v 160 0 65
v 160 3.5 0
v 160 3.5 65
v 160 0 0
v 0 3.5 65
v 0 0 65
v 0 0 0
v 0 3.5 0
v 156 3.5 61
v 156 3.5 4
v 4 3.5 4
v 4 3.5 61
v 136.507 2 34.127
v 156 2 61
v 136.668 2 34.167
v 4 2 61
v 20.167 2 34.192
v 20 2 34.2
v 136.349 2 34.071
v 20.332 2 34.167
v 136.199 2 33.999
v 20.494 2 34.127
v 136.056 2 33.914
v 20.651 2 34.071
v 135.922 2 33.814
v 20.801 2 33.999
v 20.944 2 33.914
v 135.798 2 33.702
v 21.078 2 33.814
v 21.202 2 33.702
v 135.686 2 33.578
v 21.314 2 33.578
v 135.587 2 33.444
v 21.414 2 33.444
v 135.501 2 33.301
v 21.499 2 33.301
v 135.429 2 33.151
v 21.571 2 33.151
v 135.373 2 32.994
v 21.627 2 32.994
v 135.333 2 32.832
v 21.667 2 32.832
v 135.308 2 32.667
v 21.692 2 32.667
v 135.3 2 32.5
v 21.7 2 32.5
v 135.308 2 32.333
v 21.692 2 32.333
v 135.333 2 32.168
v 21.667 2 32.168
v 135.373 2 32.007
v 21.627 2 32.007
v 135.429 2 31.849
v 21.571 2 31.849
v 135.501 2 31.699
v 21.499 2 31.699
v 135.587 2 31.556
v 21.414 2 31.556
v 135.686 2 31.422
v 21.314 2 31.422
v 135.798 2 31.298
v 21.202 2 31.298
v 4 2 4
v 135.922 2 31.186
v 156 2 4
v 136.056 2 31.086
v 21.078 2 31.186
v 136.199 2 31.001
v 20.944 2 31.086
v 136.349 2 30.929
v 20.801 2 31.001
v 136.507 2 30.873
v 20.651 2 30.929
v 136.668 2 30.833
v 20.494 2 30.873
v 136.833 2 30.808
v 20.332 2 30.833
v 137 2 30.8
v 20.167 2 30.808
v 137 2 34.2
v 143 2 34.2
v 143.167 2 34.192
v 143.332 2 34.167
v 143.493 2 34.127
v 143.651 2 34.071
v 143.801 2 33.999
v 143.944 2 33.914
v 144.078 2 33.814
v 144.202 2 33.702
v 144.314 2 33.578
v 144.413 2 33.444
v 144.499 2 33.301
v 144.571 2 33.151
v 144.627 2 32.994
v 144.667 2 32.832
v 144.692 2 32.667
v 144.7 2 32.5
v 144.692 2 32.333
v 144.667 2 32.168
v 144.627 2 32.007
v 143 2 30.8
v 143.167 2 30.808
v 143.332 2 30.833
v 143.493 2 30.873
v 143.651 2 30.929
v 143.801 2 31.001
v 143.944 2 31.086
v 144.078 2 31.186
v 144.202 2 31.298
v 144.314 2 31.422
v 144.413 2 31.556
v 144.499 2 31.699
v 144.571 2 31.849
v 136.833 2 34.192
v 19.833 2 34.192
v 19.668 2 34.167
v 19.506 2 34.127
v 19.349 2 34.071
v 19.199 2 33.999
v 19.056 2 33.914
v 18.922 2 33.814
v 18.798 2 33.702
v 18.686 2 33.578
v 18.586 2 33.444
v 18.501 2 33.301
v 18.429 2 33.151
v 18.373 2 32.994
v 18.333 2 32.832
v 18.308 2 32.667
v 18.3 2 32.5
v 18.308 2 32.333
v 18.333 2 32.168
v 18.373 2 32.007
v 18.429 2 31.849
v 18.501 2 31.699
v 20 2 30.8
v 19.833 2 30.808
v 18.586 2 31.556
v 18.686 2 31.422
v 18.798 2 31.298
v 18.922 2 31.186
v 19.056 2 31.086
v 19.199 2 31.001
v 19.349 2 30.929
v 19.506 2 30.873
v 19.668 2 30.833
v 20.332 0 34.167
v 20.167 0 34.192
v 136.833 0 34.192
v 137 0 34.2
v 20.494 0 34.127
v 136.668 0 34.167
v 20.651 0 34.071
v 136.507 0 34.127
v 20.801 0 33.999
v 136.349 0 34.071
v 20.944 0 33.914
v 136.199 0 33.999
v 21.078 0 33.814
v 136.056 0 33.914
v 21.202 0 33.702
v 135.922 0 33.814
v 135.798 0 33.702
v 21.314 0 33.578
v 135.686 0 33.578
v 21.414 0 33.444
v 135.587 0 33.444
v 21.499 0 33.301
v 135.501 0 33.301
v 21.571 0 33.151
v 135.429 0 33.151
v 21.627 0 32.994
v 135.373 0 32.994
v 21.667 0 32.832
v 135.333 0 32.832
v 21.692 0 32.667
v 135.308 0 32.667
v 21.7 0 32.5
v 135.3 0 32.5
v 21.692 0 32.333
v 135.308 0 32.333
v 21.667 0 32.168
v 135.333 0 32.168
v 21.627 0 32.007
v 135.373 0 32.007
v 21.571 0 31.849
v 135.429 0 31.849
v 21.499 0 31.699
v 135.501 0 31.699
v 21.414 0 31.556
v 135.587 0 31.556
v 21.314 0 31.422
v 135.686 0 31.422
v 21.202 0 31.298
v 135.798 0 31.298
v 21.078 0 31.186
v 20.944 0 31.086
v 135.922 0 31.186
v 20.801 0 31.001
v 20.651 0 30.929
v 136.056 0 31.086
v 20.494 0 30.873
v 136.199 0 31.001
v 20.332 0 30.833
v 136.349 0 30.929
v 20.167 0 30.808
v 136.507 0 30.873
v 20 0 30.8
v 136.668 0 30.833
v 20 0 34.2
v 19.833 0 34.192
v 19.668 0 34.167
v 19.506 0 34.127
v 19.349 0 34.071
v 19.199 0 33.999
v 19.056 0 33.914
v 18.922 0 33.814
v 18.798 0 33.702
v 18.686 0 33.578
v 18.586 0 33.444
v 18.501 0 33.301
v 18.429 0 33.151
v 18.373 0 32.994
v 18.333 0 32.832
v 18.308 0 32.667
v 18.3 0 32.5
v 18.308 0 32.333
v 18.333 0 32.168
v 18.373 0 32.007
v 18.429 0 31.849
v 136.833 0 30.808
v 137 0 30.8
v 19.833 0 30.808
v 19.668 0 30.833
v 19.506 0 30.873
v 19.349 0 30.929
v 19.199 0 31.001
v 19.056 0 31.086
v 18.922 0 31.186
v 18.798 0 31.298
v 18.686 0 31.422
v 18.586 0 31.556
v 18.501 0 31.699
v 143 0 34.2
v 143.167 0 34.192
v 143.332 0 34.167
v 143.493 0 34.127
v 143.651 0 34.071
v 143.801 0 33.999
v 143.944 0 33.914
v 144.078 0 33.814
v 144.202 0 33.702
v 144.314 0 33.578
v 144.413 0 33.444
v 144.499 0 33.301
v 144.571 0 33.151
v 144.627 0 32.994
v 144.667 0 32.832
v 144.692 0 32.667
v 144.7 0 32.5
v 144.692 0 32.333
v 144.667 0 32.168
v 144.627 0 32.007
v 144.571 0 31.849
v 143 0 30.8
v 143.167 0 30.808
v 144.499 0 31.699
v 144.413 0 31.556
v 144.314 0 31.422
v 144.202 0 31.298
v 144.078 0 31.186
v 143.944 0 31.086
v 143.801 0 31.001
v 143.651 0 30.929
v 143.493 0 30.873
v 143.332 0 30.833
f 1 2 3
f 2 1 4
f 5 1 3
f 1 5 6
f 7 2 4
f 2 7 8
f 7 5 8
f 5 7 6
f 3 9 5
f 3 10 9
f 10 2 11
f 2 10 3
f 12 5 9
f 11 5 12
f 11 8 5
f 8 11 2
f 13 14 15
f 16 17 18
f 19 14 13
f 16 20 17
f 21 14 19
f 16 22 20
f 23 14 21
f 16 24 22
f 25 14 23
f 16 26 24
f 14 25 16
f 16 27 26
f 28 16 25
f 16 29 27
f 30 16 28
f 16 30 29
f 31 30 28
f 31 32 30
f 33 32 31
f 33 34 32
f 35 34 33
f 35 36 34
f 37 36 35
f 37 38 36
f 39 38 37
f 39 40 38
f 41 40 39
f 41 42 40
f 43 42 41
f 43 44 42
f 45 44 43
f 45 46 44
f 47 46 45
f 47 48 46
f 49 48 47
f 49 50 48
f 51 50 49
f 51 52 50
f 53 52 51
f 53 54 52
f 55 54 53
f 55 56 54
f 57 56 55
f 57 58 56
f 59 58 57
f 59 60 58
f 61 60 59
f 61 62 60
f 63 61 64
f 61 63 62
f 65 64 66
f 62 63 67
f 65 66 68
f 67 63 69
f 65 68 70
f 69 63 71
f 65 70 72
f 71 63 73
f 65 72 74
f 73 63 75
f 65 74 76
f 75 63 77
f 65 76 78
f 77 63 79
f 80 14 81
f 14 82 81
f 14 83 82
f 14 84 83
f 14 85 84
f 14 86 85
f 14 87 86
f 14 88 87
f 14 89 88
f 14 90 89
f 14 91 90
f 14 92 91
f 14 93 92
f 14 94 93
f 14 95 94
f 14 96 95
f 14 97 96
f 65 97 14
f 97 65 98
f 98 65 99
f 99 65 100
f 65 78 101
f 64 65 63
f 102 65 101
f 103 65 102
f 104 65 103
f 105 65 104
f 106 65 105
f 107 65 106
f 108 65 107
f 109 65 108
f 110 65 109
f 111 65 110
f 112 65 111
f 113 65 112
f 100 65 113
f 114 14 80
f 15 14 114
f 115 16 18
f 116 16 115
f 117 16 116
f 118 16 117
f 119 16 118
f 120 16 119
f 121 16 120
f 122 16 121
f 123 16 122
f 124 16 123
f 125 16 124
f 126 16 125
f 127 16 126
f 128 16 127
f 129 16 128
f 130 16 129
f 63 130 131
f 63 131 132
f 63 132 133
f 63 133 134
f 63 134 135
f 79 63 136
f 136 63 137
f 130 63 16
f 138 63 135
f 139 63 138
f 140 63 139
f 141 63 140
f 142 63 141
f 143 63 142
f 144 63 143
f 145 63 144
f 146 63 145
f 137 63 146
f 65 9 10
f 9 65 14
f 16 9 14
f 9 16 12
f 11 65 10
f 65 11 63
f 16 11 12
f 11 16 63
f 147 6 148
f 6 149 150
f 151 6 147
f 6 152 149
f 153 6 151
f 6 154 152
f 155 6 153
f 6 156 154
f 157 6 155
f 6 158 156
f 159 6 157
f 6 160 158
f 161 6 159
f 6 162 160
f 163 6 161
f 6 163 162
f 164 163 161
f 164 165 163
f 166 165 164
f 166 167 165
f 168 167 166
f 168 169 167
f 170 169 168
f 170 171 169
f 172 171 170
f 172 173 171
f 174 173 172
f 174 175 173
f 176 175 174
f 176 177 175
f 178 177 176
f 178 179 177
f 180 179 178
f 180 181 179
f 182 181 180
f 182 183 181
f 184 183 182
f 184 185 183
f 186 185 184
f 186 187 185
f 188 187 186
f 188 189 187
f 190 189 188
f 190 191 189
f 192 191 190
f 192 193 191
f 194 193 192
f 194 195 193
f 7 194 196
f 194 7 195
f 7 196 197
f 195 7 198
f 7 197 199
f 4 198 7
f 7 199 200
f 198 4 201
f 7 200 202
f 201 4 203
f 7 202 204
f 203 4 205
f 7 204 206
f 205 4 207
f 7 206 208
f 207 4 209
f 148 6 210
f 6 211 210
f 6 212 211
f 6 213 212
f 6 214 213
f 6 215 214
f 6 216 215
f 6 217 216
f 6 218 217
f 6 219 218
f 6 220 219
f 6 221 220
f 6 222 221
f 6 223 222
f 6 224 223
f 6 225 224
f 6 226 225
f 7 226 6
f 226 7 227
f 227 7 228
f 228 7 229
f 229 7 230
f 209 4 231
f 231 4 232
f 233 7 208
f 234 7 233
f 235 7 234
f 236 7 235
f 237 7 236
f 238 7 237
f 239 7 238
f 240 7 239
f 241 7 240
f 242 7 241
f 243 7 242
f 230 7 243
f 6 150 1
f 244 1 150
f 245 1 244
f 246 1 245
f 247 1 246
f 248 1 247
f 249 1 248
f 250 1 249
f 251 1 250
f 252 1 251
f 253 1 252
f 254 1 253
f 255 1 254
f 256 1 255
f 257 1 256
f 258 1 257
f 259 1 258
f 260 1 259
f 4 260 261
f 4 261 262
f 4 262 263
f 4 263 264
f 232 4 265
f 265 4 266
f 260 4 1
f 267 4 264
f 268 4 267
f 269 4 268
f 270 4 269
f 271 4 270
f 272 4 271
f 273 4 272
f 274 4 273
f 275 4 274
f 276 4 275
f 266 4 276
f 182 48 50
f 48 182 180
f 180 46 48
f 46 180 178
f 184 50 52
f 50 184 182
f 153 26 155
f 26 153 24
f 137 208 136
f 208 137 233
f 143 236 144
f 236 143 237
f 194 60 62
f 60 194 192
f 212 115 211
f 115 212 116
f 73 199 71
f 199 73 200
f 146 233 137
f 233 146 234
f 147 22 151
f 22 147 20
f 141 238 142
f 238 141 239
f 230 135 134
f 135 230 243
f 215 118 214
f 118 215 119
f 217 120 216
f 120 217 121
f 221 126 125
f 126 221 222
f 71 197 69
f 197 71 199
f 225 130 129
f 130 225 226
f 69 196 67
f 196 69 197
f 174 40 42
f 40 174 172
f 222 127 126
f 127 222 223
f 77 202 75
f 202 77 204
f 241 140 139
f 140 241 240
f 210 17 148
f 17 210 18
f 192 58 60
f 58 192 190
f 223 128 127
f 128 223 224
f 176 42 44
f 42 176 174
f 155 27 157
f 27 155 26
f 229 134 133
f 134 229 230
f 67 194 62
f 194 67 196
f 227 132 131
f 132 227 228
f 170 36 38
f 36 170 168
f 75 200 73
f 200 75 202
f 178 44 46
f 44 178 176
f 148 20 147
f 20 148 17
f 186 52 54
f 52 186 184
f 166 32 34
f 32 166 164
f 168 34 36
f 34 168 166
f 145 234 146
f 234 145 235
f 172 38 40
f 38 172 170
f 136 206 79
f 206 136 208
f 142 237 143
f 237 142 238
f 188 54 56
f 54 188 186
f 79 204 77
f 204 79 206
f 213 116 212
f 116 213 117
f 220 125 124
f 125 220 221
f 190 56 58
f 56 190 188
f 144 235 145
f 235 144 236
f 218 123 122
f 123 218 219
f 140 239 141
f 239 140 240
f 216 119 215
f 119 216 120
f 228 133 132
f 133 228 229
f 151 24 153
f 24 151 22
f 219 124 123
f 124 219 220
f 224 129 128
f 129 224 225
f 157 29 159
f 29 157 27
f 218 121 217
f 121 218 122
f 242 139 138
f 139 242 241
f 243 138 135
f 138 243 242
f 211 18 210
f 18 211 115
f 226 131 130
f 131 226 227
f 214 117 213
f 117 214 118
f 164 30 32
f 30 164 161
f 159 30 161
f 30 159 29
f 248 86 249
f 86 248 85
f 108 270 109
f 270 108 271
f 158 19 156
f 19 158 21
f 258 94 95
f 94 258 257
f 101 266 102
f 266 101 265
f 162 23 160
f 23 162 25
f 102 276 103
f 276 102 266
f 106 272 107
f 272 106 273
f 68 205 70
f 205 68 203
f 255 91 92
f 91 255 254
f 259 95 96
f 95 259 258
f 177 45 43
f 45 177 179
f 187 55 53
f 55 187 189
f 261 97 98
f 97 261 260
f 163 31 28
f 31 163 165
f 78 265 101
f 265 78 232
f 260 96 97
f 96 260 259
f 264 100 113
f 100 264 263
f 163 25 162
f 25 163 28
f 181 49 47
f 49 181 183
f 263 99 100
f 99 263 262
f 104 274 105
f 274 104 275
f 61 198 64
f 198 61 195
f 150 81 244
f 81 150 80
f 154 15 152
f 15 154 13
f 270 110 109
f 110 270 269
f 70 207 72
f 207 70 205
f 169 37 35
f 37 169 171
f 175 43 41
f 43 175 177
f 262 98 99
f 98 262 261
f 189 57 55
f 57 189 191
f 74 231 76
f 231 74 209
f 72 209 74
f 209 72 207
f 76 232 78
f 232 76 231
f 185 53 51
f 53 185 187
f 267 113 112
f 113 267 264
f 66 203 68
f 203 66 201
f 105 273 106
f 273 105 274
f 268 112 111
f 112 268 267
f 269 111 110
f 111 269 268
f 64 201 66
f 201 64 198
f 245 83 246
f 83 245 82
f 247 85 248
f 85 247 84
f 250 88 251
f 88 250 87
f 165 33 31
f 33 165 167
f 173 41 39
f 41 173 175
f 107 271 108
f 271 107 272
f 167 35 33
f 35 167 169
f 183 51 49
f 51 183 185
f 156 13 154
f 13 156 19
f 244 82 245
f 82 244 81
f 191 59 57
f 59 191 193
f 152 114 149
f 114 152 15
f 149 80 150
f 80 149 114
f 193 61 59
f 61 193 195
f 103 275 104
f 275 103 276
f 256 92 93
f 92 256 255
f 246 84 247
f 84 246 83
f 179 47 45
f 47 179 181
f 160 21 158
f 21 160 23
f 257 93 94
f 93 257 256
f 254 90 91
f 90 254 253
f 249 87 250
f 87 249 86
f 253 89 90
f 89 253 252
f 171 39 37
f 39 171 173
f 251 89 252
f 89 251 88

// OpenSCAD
// ===========================================================================
// HULL-FRAME COORDINATE STANDARD - Rev R1 (2026-06-11).  See CLAUDE.md.
//   Hull frame (canonical for ALL design artifacts): X = +port (left),
//   Y = +aft (back), Z = +dorsal (up); origin = SerenityAssembly.FCStd
//   world origin.  Primary-component STLs published to airframe/stls/
//   are stored directly in hull frame, baked by tools/bake_hull_frame.py
//   (marker 'SerenityUAV HULL-FRAME R1' in the binary STL header).
//   NEVER re-bake a mesh derived from an already-baked file.
//   This file:
//     Part-local print frame centred on its own origin.  Hull-frame
//     placement not yet validated - VERIFY pending (serenity_assembly.py).
// ===========================================================================
// ============================================================
// belly_panel.scad
// Battery bay belly access panel — Serenity UAV 24" hull.
//
// Rev R (2026-06-11): Rev R baseline — no geometry changes.
// Rev Q (2026-06-07): Initial release.
//   Fits head/bridge section belly opening:
//     6.30 × 2.56 in (160 × 65 mm) cutout.
//   Panel dimensions:
//     Length : 6.30 in (160.0 mm) fore-aft
//     Width  : 2.56 in ( 65.0 mm) lateral
//     Thickness: 0.079 in (2.0 mm) face + 0.059 in (1.5 mm) rebate lip
//   Panel sits in a 0.059 in (1.5 mm) rebate so it is flush with hull skin.
//   Two M3 coin-slot (flathead / button-head) screws — no tool
//   required; a coin or thumbnail turns the slot.
//   EPDM foam tape (0.079 in / 2 mm closed-cell) in rebate acts as dust seal.
//   Estimated panel mass: ~0.013 lbm (~6 g).
//
//   The port and starboard panels are identical; a single spare
//   covers both positions.
//
// Author:  Steve Griffing, PE(CSE), CISSP-ISSEP, CPP
// License: CERN-OHL-W-2.0 — see LICENSES/CERN-OHL-W 2.0 (SPDX-License-Identifier: CERN-OHL-W-2.0)
//
// Print spec:
//   Material: SLS DuraForm PA CF [REF-MAT-015] (2026-11-01 FDM -> SLS migration;
//   was PETG FDM).  Non-structural panel.
//   Layer:    0.20 mm
//   Walls:    3 perimeters
//   Infill:   15% gyroid
//   Est. mass: ~6 g
//
// References:
//   [1] docs/BATTERY_MOUNT.md §3.3 — belly access panel spec.
//   [2] CLAUDE.md — fabrication standards.
// ============================================================

$fn = 64;

// ------------------------------------------------------------
// Panel dimensions
// Imperial primary: 6.30 × 2.56 in (160 × 65 mm)
// ------------------------------------------------------------
PANEL_L  = 160.0;   // mm — fore-aft length (fits 160 mm / 6.30 in hull opening)
PANEL_W  =  65.0;   // mm — lateral width   = 2.56 in
PANEL_T  =   2.0;   // mm — panel face thickness = 0.079 in

// ------------------------------------------------------------
// Rebate lip around perimeter (locates panel flush in hull)
// ------------------------------------------------------------
REBATE_D  = 1.5;    // mm — rebate depth into hull  = 0.059 in (panel lip stands proud by this)
REBATE_W  = 4.0;    // mm — rebate lip width on panel edge  = 0.157 in

// ------------------------------------------------------------
// Fastener bores (2× M3 coin-slot button-head screws)
// Clearance bore 3.4 mm; coin slot adds no thickness.
// Screws positioned 20 mm from each end, on centreline.
// ------------------------------------------------------------
SCREW_DIA  = 3.4;    // mm — M3 clearance bore
SCREW_CTR  = 20.0;   // mm — distance from each end to screw centre
// Aft bore is a fore-aft slot.  SLS parts vary along long sections; a part
// with two fixed holes on a long span shall have one hole elongated by at
// least 5 mm per 100 mm of span [REF-MFG-001 p. 13].  Span = PANEL_L -
// 2*SCREW_CTR = 120 mm -> 6.0 mm.  Fit an ISO 7089 M3 washer (7 mm OD)
// under the aft screw head so the head bears across the slot.
SLOT_EXTRA = 5.0 / 100.0 * (PANEL_L - 2.0 * SCREW_CTR);   // mm = 6.0

// ============================================================
// Belly panel
// ============================================================
module belly_panel() {
    difference() {
        union() {
            // --- Main panel face ---
            cube([PANEL_L, PANEL_T, PANEL_W]);

            // --- Rebate lip (raised flange around all four edges) ---
            // This lip fits into the 1.5 mm rebate in the hull, locating
            // the panel flush with the outer mold line.
            translate([0, PANEL_T, 0])
                difference() {
                    cube([PANEL_L, REBATE_D, PANEL_W]);
                    translate([REBATE_W, -0.1, REBATE_W])
                        cube([
                            PANEL_L - 2.0 * REBATE_W,
                            REBATE_D + 0.2,
                            PANEL_W - 2.0 * REBATE_W
                        ]);
                }
        }

        // --- Fore screw bore ---
        translate([SCREW_CTR, -0.1, PANEL_W / 2.0])
            rotate([-90, 0, 0])
                cylinder(h = PANEL_T + REBATE_D + 0.2, d = SCREW_DIA);

        // --- Aft screw slot (centred on the nominal hole, ±SLOT_EXTRA/2) ---
        hull()
            for (dx = [-SLOT_EXTRA / 2.0, SLOT_EXTRA / 2.0])
                translate([PANEL_L - SCREW_CTR + dx, -0.1, PANEL_W / 2.0])
                    rotate([-90, 0, 0])
                        cylinder(h = PANEL_T + REBATE_D + 0.2, d = SCREW_DIA);
    }
}

// ============================================================
// Render
// ============================================================
belly_panel();
